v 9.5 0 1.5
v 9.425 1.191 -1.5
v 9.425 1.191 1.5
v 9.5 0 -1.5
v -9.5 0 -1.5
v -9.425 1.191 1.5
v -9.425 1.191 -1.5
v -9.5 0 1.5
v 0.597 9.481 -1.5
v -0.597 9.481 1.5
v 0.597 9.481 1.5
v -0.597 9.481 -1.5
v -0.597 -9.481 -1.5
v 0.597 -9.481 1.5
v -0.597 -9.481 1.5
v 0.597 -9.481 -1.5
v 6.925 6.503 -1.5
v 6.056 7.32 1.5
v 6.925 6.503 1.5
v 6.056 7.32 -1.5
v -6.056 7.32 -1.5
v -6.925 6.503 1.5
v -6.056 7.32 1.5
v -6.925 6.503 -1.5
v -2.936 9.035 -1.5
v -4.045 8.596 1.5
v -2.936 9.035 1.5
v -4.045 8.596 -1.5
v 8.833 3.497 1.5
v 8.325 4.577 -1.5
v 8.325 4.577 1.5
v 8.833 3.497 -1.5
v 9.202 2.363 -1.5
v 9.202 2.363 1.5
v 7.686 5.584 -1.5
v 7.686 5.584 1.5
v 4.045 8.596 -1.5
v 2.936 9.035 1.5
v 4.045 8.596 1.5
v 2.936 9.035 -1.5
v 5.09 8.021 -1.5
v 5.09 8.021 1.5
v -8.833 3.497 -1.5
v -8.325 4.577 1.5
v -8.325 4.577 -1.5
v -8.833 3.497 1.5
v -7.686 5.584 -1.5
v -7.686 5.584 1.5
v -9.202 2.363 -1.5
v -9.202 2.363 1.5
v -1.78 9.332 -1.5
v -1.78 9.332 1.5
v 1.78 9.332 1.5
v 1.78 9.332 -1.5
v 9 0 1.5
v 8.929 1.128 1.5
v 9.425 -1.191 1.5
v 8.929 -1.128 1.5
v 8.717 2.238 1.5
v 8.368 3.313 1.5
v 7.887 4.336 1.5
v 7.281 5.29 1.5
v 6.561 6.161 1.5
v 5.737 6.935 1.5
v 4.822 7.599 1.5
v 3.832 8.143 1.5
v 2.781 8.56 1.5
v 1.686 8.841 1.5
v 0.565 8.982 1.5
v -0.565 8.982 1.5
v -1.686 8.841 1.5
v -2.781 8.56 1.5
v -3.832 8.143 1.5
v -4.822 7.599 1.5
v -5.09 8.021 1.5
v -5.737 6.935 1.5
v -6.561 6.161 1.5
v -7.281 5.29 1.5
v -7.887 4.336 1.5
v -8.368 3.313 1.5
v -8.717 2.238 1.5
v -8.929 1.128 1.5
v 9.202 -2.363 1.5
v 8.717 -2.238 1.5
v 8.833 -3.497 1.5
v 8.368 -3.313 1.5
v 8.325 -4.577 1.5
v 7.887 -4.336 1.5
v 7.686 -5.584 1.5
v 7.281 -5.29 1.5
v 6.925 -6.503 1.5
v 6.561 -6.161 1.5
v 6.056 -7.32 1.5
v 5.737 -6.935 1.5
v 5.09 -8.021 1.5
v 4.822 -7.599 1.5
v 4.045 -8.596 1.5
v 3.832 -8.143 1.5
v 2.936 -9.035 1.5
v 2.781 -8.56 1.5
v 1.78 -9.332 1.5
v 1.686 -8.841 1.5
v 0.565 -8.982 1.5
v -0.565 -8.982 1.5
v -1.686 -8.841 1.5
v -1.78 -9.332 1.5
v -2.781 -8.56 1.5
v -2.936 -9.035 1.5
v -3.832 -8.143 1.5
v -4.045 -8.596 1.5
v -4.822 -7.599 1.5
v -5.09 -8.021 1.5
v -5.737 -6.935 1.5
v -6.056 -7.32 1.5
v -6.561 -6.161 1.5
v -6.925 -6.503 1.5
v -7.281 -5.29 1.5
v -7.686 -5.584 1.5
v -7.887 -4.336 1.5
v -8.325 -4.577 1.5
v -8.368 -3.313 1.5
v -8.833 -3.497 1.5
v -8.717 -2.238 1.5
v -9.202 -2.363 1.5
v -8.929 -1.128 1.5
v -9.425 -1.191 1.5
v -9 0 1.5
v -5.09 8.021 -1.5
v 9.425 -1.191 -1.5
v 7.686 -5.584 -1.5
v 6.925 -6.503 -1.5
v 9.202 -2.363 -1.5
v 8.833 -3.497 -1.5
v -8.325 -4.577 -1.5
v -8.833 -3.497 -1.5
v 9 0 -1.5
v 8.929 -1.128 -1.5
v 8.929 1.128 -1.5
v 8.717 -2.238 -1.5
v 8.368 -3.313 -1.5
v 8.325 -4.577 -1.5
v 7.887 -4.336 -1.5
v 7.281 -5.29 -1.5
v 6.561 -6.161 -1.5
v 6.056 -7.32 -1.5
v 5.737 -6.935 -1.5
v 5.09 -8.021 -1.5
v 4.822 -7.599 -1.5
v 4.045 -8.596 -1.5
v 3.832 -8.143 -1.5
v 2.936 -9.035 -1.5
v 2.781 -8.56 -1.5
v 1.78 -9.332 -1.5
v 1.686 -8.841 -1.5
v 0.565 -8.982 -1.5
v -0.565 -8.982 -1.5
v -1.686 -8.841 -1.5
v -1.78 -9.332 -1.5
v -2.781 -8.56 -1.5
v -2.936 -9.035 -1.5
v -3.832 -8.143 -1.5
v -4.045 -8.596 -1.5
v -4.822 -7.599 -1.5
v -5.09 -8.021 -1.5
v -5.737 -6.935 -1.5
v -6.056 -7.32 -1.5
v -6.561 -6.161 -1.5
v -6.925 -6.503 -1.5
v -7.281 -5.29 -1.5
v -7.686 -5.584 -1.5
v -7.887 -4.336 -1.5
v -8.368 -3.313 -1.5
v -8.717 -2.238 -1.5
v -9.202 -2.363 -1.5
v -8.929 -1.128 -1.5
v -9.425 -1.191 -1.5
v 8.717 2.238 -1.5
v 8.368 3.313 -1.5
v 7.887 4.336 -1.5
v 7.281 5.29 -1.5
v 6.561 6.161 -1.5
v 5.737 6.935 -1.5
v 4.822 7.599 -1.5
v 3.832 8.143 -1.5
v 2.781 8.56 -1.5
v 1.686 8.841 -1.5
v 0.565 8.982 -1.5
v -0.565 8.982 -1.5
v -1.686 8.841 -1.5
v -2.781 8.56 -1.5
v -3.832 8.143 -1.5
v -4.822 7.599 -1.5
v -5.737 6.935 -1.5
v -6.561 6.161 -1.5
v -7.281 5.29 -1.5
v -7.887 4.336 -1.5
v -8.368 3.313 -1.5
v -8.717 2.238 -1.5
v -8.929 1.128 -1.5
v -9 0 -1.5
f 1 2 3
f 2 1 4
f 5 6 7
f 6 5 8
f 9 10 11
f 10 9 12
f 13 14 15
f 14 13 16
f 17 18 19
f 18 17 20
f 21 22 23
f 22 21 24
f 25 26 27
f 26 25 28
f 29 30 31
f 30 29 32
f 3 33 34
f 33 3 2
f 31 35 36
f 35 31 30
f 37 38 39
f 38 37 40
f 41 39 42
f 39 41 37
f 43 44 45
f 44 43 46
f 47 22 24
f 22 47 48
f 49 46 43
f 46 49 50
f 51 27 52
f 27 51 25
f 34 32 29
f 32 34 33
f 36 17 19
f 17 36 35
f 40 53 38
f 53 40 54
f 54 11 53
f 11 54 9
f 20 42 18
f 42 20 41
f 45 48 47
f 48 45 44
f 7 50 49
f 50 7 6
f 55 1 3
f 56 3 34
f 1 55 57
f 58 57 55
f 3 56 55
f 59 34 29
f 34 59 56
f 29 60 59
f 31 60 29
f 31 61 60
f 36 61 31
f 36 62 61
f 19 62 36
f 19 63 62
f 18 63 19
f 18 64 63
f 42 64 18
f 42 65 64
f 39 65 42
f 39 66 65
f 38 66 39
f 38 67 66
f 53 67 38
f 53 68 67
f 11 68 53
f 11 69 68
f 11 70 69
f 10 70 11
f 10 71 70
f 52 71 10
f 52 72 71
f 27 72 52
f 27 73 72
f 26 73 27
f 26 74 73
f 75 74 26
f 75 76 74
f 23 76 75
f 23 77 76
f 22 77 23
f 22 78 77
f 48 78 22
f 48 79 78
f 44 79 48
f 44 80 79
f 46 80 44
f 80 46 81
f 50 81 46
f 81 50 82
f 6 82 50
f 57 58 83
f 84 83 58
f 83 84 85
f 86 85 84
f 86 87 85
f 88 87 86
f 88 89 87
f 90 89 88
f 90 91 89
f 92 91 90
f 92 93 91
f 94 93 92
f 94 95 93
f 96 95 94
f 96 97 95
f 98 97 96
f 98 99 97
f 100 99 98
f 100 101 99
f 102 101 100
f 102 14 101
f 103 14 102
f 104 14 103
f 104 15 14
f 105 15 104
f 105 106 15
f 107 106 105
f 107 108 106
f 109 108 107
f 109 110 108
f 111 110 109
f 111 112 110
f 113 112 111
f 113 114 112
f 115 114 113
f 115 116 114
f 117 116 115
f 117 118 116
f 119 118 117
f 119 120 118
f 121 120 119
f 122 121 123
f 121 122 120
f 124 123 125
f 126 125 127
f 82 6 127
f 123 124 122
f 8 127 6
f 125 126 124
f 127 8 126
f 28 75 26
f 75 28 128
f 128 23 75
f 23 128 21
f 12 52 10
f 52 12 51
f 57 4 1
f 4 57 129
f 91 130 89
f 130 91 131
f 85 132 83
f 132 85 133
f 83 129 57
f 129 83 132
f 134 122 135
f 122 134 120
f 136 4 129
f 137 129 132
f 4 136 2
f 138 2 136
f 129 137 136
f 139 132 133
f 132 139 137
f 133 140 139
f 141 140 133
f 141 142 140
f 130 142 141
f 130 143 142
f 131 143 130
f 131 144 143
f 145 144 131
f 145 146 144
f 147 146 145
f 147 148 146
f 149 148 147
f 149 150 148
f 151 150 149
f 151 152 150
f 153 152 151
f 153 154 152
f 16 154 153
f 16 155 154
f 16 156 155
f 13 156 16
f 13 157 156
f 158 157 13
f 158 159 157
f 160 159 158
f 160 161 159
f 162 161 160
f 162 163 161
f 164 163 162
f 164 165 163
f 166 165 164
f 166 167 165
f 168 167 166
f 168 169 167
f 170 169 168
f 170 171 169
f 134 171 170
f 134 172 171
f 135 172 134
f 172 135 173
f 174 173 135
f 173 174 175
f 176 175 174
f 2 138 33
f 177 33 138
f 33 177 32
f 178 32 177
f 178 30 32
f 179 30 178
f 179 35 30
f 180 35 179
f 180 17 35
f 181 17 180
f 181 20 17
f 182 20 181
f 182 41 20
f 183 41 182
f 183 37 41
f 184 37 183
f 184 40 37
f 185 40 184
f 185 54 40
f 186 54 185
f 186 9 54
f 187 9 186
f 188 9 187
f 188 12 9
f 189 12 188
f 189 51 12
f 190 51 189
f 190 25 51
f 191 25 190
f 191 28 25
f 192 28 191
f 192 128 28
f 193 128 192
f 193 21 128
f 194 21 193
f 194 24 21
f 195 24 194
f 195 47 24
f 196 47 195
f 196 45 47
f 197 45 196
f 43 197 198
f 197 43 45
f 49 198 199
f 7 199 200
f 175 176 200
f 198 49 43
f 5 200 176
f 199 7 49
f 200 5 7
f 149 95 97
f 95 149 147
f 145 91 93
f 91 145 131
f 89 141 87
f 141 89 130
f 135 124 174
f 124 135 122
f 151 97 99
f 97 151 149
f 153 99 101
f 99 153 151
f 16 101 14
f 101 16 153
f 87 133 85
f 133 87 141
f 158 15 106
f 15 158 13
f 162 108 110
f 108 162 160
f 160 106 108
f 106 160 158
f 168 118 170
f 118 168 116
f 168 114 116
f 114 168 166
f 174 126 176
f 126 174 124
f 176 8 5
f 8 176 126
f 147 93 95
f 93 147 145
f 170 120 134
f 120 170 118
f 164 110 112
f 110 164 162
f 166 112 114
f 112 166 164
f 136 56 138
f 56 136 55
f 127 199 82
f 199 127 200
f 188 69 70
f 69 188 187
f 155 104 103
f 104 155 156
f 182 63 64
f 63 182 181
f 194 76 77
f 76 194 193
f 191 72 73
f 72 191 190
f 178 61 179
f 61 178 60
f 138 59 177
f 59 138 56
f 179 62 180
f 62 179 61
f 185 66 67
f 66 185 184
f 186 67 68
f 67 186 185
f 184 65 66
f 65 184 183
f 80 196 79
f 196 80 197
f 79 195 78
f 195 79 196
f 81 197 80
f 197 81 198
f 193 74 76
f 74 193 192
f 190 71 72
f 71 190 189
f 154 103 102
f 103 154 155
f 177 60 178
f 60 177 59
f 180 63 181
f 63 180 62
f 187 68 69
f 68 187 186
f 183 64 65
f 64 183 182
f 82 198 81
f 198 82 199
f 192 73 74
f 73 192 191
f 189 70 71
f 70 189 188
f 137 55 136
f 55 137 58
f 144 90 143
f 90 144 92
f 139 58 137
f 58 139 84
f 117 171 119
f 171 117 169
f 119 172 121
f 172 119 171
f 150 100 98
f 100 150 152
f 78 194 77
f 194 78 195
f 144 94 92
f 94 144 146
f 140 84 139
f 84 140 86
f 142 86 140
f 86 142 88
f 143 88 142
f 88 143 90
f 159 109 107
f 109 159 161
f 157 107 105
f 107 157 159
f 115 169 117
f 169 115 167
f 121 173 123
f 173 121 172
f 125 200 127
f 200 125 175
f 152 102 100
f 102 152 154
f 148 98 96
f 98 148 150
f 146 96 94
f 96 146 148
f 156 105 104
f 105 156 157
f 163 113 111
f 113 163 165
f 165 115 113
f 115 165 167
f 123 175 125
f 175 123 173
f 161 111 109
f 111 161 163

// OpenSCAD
$fn = 50;


difference() {
	union() {
		translate(v = [0, 0, -1.5000000000]) {
			cylinder(h = 3, r = 9.5000000000);
		}
	}
	union() {
		translate(v = [0, 0, -100.0000000000]) {
			cylinder(h = 200, r = 9);
		}
	}
}
